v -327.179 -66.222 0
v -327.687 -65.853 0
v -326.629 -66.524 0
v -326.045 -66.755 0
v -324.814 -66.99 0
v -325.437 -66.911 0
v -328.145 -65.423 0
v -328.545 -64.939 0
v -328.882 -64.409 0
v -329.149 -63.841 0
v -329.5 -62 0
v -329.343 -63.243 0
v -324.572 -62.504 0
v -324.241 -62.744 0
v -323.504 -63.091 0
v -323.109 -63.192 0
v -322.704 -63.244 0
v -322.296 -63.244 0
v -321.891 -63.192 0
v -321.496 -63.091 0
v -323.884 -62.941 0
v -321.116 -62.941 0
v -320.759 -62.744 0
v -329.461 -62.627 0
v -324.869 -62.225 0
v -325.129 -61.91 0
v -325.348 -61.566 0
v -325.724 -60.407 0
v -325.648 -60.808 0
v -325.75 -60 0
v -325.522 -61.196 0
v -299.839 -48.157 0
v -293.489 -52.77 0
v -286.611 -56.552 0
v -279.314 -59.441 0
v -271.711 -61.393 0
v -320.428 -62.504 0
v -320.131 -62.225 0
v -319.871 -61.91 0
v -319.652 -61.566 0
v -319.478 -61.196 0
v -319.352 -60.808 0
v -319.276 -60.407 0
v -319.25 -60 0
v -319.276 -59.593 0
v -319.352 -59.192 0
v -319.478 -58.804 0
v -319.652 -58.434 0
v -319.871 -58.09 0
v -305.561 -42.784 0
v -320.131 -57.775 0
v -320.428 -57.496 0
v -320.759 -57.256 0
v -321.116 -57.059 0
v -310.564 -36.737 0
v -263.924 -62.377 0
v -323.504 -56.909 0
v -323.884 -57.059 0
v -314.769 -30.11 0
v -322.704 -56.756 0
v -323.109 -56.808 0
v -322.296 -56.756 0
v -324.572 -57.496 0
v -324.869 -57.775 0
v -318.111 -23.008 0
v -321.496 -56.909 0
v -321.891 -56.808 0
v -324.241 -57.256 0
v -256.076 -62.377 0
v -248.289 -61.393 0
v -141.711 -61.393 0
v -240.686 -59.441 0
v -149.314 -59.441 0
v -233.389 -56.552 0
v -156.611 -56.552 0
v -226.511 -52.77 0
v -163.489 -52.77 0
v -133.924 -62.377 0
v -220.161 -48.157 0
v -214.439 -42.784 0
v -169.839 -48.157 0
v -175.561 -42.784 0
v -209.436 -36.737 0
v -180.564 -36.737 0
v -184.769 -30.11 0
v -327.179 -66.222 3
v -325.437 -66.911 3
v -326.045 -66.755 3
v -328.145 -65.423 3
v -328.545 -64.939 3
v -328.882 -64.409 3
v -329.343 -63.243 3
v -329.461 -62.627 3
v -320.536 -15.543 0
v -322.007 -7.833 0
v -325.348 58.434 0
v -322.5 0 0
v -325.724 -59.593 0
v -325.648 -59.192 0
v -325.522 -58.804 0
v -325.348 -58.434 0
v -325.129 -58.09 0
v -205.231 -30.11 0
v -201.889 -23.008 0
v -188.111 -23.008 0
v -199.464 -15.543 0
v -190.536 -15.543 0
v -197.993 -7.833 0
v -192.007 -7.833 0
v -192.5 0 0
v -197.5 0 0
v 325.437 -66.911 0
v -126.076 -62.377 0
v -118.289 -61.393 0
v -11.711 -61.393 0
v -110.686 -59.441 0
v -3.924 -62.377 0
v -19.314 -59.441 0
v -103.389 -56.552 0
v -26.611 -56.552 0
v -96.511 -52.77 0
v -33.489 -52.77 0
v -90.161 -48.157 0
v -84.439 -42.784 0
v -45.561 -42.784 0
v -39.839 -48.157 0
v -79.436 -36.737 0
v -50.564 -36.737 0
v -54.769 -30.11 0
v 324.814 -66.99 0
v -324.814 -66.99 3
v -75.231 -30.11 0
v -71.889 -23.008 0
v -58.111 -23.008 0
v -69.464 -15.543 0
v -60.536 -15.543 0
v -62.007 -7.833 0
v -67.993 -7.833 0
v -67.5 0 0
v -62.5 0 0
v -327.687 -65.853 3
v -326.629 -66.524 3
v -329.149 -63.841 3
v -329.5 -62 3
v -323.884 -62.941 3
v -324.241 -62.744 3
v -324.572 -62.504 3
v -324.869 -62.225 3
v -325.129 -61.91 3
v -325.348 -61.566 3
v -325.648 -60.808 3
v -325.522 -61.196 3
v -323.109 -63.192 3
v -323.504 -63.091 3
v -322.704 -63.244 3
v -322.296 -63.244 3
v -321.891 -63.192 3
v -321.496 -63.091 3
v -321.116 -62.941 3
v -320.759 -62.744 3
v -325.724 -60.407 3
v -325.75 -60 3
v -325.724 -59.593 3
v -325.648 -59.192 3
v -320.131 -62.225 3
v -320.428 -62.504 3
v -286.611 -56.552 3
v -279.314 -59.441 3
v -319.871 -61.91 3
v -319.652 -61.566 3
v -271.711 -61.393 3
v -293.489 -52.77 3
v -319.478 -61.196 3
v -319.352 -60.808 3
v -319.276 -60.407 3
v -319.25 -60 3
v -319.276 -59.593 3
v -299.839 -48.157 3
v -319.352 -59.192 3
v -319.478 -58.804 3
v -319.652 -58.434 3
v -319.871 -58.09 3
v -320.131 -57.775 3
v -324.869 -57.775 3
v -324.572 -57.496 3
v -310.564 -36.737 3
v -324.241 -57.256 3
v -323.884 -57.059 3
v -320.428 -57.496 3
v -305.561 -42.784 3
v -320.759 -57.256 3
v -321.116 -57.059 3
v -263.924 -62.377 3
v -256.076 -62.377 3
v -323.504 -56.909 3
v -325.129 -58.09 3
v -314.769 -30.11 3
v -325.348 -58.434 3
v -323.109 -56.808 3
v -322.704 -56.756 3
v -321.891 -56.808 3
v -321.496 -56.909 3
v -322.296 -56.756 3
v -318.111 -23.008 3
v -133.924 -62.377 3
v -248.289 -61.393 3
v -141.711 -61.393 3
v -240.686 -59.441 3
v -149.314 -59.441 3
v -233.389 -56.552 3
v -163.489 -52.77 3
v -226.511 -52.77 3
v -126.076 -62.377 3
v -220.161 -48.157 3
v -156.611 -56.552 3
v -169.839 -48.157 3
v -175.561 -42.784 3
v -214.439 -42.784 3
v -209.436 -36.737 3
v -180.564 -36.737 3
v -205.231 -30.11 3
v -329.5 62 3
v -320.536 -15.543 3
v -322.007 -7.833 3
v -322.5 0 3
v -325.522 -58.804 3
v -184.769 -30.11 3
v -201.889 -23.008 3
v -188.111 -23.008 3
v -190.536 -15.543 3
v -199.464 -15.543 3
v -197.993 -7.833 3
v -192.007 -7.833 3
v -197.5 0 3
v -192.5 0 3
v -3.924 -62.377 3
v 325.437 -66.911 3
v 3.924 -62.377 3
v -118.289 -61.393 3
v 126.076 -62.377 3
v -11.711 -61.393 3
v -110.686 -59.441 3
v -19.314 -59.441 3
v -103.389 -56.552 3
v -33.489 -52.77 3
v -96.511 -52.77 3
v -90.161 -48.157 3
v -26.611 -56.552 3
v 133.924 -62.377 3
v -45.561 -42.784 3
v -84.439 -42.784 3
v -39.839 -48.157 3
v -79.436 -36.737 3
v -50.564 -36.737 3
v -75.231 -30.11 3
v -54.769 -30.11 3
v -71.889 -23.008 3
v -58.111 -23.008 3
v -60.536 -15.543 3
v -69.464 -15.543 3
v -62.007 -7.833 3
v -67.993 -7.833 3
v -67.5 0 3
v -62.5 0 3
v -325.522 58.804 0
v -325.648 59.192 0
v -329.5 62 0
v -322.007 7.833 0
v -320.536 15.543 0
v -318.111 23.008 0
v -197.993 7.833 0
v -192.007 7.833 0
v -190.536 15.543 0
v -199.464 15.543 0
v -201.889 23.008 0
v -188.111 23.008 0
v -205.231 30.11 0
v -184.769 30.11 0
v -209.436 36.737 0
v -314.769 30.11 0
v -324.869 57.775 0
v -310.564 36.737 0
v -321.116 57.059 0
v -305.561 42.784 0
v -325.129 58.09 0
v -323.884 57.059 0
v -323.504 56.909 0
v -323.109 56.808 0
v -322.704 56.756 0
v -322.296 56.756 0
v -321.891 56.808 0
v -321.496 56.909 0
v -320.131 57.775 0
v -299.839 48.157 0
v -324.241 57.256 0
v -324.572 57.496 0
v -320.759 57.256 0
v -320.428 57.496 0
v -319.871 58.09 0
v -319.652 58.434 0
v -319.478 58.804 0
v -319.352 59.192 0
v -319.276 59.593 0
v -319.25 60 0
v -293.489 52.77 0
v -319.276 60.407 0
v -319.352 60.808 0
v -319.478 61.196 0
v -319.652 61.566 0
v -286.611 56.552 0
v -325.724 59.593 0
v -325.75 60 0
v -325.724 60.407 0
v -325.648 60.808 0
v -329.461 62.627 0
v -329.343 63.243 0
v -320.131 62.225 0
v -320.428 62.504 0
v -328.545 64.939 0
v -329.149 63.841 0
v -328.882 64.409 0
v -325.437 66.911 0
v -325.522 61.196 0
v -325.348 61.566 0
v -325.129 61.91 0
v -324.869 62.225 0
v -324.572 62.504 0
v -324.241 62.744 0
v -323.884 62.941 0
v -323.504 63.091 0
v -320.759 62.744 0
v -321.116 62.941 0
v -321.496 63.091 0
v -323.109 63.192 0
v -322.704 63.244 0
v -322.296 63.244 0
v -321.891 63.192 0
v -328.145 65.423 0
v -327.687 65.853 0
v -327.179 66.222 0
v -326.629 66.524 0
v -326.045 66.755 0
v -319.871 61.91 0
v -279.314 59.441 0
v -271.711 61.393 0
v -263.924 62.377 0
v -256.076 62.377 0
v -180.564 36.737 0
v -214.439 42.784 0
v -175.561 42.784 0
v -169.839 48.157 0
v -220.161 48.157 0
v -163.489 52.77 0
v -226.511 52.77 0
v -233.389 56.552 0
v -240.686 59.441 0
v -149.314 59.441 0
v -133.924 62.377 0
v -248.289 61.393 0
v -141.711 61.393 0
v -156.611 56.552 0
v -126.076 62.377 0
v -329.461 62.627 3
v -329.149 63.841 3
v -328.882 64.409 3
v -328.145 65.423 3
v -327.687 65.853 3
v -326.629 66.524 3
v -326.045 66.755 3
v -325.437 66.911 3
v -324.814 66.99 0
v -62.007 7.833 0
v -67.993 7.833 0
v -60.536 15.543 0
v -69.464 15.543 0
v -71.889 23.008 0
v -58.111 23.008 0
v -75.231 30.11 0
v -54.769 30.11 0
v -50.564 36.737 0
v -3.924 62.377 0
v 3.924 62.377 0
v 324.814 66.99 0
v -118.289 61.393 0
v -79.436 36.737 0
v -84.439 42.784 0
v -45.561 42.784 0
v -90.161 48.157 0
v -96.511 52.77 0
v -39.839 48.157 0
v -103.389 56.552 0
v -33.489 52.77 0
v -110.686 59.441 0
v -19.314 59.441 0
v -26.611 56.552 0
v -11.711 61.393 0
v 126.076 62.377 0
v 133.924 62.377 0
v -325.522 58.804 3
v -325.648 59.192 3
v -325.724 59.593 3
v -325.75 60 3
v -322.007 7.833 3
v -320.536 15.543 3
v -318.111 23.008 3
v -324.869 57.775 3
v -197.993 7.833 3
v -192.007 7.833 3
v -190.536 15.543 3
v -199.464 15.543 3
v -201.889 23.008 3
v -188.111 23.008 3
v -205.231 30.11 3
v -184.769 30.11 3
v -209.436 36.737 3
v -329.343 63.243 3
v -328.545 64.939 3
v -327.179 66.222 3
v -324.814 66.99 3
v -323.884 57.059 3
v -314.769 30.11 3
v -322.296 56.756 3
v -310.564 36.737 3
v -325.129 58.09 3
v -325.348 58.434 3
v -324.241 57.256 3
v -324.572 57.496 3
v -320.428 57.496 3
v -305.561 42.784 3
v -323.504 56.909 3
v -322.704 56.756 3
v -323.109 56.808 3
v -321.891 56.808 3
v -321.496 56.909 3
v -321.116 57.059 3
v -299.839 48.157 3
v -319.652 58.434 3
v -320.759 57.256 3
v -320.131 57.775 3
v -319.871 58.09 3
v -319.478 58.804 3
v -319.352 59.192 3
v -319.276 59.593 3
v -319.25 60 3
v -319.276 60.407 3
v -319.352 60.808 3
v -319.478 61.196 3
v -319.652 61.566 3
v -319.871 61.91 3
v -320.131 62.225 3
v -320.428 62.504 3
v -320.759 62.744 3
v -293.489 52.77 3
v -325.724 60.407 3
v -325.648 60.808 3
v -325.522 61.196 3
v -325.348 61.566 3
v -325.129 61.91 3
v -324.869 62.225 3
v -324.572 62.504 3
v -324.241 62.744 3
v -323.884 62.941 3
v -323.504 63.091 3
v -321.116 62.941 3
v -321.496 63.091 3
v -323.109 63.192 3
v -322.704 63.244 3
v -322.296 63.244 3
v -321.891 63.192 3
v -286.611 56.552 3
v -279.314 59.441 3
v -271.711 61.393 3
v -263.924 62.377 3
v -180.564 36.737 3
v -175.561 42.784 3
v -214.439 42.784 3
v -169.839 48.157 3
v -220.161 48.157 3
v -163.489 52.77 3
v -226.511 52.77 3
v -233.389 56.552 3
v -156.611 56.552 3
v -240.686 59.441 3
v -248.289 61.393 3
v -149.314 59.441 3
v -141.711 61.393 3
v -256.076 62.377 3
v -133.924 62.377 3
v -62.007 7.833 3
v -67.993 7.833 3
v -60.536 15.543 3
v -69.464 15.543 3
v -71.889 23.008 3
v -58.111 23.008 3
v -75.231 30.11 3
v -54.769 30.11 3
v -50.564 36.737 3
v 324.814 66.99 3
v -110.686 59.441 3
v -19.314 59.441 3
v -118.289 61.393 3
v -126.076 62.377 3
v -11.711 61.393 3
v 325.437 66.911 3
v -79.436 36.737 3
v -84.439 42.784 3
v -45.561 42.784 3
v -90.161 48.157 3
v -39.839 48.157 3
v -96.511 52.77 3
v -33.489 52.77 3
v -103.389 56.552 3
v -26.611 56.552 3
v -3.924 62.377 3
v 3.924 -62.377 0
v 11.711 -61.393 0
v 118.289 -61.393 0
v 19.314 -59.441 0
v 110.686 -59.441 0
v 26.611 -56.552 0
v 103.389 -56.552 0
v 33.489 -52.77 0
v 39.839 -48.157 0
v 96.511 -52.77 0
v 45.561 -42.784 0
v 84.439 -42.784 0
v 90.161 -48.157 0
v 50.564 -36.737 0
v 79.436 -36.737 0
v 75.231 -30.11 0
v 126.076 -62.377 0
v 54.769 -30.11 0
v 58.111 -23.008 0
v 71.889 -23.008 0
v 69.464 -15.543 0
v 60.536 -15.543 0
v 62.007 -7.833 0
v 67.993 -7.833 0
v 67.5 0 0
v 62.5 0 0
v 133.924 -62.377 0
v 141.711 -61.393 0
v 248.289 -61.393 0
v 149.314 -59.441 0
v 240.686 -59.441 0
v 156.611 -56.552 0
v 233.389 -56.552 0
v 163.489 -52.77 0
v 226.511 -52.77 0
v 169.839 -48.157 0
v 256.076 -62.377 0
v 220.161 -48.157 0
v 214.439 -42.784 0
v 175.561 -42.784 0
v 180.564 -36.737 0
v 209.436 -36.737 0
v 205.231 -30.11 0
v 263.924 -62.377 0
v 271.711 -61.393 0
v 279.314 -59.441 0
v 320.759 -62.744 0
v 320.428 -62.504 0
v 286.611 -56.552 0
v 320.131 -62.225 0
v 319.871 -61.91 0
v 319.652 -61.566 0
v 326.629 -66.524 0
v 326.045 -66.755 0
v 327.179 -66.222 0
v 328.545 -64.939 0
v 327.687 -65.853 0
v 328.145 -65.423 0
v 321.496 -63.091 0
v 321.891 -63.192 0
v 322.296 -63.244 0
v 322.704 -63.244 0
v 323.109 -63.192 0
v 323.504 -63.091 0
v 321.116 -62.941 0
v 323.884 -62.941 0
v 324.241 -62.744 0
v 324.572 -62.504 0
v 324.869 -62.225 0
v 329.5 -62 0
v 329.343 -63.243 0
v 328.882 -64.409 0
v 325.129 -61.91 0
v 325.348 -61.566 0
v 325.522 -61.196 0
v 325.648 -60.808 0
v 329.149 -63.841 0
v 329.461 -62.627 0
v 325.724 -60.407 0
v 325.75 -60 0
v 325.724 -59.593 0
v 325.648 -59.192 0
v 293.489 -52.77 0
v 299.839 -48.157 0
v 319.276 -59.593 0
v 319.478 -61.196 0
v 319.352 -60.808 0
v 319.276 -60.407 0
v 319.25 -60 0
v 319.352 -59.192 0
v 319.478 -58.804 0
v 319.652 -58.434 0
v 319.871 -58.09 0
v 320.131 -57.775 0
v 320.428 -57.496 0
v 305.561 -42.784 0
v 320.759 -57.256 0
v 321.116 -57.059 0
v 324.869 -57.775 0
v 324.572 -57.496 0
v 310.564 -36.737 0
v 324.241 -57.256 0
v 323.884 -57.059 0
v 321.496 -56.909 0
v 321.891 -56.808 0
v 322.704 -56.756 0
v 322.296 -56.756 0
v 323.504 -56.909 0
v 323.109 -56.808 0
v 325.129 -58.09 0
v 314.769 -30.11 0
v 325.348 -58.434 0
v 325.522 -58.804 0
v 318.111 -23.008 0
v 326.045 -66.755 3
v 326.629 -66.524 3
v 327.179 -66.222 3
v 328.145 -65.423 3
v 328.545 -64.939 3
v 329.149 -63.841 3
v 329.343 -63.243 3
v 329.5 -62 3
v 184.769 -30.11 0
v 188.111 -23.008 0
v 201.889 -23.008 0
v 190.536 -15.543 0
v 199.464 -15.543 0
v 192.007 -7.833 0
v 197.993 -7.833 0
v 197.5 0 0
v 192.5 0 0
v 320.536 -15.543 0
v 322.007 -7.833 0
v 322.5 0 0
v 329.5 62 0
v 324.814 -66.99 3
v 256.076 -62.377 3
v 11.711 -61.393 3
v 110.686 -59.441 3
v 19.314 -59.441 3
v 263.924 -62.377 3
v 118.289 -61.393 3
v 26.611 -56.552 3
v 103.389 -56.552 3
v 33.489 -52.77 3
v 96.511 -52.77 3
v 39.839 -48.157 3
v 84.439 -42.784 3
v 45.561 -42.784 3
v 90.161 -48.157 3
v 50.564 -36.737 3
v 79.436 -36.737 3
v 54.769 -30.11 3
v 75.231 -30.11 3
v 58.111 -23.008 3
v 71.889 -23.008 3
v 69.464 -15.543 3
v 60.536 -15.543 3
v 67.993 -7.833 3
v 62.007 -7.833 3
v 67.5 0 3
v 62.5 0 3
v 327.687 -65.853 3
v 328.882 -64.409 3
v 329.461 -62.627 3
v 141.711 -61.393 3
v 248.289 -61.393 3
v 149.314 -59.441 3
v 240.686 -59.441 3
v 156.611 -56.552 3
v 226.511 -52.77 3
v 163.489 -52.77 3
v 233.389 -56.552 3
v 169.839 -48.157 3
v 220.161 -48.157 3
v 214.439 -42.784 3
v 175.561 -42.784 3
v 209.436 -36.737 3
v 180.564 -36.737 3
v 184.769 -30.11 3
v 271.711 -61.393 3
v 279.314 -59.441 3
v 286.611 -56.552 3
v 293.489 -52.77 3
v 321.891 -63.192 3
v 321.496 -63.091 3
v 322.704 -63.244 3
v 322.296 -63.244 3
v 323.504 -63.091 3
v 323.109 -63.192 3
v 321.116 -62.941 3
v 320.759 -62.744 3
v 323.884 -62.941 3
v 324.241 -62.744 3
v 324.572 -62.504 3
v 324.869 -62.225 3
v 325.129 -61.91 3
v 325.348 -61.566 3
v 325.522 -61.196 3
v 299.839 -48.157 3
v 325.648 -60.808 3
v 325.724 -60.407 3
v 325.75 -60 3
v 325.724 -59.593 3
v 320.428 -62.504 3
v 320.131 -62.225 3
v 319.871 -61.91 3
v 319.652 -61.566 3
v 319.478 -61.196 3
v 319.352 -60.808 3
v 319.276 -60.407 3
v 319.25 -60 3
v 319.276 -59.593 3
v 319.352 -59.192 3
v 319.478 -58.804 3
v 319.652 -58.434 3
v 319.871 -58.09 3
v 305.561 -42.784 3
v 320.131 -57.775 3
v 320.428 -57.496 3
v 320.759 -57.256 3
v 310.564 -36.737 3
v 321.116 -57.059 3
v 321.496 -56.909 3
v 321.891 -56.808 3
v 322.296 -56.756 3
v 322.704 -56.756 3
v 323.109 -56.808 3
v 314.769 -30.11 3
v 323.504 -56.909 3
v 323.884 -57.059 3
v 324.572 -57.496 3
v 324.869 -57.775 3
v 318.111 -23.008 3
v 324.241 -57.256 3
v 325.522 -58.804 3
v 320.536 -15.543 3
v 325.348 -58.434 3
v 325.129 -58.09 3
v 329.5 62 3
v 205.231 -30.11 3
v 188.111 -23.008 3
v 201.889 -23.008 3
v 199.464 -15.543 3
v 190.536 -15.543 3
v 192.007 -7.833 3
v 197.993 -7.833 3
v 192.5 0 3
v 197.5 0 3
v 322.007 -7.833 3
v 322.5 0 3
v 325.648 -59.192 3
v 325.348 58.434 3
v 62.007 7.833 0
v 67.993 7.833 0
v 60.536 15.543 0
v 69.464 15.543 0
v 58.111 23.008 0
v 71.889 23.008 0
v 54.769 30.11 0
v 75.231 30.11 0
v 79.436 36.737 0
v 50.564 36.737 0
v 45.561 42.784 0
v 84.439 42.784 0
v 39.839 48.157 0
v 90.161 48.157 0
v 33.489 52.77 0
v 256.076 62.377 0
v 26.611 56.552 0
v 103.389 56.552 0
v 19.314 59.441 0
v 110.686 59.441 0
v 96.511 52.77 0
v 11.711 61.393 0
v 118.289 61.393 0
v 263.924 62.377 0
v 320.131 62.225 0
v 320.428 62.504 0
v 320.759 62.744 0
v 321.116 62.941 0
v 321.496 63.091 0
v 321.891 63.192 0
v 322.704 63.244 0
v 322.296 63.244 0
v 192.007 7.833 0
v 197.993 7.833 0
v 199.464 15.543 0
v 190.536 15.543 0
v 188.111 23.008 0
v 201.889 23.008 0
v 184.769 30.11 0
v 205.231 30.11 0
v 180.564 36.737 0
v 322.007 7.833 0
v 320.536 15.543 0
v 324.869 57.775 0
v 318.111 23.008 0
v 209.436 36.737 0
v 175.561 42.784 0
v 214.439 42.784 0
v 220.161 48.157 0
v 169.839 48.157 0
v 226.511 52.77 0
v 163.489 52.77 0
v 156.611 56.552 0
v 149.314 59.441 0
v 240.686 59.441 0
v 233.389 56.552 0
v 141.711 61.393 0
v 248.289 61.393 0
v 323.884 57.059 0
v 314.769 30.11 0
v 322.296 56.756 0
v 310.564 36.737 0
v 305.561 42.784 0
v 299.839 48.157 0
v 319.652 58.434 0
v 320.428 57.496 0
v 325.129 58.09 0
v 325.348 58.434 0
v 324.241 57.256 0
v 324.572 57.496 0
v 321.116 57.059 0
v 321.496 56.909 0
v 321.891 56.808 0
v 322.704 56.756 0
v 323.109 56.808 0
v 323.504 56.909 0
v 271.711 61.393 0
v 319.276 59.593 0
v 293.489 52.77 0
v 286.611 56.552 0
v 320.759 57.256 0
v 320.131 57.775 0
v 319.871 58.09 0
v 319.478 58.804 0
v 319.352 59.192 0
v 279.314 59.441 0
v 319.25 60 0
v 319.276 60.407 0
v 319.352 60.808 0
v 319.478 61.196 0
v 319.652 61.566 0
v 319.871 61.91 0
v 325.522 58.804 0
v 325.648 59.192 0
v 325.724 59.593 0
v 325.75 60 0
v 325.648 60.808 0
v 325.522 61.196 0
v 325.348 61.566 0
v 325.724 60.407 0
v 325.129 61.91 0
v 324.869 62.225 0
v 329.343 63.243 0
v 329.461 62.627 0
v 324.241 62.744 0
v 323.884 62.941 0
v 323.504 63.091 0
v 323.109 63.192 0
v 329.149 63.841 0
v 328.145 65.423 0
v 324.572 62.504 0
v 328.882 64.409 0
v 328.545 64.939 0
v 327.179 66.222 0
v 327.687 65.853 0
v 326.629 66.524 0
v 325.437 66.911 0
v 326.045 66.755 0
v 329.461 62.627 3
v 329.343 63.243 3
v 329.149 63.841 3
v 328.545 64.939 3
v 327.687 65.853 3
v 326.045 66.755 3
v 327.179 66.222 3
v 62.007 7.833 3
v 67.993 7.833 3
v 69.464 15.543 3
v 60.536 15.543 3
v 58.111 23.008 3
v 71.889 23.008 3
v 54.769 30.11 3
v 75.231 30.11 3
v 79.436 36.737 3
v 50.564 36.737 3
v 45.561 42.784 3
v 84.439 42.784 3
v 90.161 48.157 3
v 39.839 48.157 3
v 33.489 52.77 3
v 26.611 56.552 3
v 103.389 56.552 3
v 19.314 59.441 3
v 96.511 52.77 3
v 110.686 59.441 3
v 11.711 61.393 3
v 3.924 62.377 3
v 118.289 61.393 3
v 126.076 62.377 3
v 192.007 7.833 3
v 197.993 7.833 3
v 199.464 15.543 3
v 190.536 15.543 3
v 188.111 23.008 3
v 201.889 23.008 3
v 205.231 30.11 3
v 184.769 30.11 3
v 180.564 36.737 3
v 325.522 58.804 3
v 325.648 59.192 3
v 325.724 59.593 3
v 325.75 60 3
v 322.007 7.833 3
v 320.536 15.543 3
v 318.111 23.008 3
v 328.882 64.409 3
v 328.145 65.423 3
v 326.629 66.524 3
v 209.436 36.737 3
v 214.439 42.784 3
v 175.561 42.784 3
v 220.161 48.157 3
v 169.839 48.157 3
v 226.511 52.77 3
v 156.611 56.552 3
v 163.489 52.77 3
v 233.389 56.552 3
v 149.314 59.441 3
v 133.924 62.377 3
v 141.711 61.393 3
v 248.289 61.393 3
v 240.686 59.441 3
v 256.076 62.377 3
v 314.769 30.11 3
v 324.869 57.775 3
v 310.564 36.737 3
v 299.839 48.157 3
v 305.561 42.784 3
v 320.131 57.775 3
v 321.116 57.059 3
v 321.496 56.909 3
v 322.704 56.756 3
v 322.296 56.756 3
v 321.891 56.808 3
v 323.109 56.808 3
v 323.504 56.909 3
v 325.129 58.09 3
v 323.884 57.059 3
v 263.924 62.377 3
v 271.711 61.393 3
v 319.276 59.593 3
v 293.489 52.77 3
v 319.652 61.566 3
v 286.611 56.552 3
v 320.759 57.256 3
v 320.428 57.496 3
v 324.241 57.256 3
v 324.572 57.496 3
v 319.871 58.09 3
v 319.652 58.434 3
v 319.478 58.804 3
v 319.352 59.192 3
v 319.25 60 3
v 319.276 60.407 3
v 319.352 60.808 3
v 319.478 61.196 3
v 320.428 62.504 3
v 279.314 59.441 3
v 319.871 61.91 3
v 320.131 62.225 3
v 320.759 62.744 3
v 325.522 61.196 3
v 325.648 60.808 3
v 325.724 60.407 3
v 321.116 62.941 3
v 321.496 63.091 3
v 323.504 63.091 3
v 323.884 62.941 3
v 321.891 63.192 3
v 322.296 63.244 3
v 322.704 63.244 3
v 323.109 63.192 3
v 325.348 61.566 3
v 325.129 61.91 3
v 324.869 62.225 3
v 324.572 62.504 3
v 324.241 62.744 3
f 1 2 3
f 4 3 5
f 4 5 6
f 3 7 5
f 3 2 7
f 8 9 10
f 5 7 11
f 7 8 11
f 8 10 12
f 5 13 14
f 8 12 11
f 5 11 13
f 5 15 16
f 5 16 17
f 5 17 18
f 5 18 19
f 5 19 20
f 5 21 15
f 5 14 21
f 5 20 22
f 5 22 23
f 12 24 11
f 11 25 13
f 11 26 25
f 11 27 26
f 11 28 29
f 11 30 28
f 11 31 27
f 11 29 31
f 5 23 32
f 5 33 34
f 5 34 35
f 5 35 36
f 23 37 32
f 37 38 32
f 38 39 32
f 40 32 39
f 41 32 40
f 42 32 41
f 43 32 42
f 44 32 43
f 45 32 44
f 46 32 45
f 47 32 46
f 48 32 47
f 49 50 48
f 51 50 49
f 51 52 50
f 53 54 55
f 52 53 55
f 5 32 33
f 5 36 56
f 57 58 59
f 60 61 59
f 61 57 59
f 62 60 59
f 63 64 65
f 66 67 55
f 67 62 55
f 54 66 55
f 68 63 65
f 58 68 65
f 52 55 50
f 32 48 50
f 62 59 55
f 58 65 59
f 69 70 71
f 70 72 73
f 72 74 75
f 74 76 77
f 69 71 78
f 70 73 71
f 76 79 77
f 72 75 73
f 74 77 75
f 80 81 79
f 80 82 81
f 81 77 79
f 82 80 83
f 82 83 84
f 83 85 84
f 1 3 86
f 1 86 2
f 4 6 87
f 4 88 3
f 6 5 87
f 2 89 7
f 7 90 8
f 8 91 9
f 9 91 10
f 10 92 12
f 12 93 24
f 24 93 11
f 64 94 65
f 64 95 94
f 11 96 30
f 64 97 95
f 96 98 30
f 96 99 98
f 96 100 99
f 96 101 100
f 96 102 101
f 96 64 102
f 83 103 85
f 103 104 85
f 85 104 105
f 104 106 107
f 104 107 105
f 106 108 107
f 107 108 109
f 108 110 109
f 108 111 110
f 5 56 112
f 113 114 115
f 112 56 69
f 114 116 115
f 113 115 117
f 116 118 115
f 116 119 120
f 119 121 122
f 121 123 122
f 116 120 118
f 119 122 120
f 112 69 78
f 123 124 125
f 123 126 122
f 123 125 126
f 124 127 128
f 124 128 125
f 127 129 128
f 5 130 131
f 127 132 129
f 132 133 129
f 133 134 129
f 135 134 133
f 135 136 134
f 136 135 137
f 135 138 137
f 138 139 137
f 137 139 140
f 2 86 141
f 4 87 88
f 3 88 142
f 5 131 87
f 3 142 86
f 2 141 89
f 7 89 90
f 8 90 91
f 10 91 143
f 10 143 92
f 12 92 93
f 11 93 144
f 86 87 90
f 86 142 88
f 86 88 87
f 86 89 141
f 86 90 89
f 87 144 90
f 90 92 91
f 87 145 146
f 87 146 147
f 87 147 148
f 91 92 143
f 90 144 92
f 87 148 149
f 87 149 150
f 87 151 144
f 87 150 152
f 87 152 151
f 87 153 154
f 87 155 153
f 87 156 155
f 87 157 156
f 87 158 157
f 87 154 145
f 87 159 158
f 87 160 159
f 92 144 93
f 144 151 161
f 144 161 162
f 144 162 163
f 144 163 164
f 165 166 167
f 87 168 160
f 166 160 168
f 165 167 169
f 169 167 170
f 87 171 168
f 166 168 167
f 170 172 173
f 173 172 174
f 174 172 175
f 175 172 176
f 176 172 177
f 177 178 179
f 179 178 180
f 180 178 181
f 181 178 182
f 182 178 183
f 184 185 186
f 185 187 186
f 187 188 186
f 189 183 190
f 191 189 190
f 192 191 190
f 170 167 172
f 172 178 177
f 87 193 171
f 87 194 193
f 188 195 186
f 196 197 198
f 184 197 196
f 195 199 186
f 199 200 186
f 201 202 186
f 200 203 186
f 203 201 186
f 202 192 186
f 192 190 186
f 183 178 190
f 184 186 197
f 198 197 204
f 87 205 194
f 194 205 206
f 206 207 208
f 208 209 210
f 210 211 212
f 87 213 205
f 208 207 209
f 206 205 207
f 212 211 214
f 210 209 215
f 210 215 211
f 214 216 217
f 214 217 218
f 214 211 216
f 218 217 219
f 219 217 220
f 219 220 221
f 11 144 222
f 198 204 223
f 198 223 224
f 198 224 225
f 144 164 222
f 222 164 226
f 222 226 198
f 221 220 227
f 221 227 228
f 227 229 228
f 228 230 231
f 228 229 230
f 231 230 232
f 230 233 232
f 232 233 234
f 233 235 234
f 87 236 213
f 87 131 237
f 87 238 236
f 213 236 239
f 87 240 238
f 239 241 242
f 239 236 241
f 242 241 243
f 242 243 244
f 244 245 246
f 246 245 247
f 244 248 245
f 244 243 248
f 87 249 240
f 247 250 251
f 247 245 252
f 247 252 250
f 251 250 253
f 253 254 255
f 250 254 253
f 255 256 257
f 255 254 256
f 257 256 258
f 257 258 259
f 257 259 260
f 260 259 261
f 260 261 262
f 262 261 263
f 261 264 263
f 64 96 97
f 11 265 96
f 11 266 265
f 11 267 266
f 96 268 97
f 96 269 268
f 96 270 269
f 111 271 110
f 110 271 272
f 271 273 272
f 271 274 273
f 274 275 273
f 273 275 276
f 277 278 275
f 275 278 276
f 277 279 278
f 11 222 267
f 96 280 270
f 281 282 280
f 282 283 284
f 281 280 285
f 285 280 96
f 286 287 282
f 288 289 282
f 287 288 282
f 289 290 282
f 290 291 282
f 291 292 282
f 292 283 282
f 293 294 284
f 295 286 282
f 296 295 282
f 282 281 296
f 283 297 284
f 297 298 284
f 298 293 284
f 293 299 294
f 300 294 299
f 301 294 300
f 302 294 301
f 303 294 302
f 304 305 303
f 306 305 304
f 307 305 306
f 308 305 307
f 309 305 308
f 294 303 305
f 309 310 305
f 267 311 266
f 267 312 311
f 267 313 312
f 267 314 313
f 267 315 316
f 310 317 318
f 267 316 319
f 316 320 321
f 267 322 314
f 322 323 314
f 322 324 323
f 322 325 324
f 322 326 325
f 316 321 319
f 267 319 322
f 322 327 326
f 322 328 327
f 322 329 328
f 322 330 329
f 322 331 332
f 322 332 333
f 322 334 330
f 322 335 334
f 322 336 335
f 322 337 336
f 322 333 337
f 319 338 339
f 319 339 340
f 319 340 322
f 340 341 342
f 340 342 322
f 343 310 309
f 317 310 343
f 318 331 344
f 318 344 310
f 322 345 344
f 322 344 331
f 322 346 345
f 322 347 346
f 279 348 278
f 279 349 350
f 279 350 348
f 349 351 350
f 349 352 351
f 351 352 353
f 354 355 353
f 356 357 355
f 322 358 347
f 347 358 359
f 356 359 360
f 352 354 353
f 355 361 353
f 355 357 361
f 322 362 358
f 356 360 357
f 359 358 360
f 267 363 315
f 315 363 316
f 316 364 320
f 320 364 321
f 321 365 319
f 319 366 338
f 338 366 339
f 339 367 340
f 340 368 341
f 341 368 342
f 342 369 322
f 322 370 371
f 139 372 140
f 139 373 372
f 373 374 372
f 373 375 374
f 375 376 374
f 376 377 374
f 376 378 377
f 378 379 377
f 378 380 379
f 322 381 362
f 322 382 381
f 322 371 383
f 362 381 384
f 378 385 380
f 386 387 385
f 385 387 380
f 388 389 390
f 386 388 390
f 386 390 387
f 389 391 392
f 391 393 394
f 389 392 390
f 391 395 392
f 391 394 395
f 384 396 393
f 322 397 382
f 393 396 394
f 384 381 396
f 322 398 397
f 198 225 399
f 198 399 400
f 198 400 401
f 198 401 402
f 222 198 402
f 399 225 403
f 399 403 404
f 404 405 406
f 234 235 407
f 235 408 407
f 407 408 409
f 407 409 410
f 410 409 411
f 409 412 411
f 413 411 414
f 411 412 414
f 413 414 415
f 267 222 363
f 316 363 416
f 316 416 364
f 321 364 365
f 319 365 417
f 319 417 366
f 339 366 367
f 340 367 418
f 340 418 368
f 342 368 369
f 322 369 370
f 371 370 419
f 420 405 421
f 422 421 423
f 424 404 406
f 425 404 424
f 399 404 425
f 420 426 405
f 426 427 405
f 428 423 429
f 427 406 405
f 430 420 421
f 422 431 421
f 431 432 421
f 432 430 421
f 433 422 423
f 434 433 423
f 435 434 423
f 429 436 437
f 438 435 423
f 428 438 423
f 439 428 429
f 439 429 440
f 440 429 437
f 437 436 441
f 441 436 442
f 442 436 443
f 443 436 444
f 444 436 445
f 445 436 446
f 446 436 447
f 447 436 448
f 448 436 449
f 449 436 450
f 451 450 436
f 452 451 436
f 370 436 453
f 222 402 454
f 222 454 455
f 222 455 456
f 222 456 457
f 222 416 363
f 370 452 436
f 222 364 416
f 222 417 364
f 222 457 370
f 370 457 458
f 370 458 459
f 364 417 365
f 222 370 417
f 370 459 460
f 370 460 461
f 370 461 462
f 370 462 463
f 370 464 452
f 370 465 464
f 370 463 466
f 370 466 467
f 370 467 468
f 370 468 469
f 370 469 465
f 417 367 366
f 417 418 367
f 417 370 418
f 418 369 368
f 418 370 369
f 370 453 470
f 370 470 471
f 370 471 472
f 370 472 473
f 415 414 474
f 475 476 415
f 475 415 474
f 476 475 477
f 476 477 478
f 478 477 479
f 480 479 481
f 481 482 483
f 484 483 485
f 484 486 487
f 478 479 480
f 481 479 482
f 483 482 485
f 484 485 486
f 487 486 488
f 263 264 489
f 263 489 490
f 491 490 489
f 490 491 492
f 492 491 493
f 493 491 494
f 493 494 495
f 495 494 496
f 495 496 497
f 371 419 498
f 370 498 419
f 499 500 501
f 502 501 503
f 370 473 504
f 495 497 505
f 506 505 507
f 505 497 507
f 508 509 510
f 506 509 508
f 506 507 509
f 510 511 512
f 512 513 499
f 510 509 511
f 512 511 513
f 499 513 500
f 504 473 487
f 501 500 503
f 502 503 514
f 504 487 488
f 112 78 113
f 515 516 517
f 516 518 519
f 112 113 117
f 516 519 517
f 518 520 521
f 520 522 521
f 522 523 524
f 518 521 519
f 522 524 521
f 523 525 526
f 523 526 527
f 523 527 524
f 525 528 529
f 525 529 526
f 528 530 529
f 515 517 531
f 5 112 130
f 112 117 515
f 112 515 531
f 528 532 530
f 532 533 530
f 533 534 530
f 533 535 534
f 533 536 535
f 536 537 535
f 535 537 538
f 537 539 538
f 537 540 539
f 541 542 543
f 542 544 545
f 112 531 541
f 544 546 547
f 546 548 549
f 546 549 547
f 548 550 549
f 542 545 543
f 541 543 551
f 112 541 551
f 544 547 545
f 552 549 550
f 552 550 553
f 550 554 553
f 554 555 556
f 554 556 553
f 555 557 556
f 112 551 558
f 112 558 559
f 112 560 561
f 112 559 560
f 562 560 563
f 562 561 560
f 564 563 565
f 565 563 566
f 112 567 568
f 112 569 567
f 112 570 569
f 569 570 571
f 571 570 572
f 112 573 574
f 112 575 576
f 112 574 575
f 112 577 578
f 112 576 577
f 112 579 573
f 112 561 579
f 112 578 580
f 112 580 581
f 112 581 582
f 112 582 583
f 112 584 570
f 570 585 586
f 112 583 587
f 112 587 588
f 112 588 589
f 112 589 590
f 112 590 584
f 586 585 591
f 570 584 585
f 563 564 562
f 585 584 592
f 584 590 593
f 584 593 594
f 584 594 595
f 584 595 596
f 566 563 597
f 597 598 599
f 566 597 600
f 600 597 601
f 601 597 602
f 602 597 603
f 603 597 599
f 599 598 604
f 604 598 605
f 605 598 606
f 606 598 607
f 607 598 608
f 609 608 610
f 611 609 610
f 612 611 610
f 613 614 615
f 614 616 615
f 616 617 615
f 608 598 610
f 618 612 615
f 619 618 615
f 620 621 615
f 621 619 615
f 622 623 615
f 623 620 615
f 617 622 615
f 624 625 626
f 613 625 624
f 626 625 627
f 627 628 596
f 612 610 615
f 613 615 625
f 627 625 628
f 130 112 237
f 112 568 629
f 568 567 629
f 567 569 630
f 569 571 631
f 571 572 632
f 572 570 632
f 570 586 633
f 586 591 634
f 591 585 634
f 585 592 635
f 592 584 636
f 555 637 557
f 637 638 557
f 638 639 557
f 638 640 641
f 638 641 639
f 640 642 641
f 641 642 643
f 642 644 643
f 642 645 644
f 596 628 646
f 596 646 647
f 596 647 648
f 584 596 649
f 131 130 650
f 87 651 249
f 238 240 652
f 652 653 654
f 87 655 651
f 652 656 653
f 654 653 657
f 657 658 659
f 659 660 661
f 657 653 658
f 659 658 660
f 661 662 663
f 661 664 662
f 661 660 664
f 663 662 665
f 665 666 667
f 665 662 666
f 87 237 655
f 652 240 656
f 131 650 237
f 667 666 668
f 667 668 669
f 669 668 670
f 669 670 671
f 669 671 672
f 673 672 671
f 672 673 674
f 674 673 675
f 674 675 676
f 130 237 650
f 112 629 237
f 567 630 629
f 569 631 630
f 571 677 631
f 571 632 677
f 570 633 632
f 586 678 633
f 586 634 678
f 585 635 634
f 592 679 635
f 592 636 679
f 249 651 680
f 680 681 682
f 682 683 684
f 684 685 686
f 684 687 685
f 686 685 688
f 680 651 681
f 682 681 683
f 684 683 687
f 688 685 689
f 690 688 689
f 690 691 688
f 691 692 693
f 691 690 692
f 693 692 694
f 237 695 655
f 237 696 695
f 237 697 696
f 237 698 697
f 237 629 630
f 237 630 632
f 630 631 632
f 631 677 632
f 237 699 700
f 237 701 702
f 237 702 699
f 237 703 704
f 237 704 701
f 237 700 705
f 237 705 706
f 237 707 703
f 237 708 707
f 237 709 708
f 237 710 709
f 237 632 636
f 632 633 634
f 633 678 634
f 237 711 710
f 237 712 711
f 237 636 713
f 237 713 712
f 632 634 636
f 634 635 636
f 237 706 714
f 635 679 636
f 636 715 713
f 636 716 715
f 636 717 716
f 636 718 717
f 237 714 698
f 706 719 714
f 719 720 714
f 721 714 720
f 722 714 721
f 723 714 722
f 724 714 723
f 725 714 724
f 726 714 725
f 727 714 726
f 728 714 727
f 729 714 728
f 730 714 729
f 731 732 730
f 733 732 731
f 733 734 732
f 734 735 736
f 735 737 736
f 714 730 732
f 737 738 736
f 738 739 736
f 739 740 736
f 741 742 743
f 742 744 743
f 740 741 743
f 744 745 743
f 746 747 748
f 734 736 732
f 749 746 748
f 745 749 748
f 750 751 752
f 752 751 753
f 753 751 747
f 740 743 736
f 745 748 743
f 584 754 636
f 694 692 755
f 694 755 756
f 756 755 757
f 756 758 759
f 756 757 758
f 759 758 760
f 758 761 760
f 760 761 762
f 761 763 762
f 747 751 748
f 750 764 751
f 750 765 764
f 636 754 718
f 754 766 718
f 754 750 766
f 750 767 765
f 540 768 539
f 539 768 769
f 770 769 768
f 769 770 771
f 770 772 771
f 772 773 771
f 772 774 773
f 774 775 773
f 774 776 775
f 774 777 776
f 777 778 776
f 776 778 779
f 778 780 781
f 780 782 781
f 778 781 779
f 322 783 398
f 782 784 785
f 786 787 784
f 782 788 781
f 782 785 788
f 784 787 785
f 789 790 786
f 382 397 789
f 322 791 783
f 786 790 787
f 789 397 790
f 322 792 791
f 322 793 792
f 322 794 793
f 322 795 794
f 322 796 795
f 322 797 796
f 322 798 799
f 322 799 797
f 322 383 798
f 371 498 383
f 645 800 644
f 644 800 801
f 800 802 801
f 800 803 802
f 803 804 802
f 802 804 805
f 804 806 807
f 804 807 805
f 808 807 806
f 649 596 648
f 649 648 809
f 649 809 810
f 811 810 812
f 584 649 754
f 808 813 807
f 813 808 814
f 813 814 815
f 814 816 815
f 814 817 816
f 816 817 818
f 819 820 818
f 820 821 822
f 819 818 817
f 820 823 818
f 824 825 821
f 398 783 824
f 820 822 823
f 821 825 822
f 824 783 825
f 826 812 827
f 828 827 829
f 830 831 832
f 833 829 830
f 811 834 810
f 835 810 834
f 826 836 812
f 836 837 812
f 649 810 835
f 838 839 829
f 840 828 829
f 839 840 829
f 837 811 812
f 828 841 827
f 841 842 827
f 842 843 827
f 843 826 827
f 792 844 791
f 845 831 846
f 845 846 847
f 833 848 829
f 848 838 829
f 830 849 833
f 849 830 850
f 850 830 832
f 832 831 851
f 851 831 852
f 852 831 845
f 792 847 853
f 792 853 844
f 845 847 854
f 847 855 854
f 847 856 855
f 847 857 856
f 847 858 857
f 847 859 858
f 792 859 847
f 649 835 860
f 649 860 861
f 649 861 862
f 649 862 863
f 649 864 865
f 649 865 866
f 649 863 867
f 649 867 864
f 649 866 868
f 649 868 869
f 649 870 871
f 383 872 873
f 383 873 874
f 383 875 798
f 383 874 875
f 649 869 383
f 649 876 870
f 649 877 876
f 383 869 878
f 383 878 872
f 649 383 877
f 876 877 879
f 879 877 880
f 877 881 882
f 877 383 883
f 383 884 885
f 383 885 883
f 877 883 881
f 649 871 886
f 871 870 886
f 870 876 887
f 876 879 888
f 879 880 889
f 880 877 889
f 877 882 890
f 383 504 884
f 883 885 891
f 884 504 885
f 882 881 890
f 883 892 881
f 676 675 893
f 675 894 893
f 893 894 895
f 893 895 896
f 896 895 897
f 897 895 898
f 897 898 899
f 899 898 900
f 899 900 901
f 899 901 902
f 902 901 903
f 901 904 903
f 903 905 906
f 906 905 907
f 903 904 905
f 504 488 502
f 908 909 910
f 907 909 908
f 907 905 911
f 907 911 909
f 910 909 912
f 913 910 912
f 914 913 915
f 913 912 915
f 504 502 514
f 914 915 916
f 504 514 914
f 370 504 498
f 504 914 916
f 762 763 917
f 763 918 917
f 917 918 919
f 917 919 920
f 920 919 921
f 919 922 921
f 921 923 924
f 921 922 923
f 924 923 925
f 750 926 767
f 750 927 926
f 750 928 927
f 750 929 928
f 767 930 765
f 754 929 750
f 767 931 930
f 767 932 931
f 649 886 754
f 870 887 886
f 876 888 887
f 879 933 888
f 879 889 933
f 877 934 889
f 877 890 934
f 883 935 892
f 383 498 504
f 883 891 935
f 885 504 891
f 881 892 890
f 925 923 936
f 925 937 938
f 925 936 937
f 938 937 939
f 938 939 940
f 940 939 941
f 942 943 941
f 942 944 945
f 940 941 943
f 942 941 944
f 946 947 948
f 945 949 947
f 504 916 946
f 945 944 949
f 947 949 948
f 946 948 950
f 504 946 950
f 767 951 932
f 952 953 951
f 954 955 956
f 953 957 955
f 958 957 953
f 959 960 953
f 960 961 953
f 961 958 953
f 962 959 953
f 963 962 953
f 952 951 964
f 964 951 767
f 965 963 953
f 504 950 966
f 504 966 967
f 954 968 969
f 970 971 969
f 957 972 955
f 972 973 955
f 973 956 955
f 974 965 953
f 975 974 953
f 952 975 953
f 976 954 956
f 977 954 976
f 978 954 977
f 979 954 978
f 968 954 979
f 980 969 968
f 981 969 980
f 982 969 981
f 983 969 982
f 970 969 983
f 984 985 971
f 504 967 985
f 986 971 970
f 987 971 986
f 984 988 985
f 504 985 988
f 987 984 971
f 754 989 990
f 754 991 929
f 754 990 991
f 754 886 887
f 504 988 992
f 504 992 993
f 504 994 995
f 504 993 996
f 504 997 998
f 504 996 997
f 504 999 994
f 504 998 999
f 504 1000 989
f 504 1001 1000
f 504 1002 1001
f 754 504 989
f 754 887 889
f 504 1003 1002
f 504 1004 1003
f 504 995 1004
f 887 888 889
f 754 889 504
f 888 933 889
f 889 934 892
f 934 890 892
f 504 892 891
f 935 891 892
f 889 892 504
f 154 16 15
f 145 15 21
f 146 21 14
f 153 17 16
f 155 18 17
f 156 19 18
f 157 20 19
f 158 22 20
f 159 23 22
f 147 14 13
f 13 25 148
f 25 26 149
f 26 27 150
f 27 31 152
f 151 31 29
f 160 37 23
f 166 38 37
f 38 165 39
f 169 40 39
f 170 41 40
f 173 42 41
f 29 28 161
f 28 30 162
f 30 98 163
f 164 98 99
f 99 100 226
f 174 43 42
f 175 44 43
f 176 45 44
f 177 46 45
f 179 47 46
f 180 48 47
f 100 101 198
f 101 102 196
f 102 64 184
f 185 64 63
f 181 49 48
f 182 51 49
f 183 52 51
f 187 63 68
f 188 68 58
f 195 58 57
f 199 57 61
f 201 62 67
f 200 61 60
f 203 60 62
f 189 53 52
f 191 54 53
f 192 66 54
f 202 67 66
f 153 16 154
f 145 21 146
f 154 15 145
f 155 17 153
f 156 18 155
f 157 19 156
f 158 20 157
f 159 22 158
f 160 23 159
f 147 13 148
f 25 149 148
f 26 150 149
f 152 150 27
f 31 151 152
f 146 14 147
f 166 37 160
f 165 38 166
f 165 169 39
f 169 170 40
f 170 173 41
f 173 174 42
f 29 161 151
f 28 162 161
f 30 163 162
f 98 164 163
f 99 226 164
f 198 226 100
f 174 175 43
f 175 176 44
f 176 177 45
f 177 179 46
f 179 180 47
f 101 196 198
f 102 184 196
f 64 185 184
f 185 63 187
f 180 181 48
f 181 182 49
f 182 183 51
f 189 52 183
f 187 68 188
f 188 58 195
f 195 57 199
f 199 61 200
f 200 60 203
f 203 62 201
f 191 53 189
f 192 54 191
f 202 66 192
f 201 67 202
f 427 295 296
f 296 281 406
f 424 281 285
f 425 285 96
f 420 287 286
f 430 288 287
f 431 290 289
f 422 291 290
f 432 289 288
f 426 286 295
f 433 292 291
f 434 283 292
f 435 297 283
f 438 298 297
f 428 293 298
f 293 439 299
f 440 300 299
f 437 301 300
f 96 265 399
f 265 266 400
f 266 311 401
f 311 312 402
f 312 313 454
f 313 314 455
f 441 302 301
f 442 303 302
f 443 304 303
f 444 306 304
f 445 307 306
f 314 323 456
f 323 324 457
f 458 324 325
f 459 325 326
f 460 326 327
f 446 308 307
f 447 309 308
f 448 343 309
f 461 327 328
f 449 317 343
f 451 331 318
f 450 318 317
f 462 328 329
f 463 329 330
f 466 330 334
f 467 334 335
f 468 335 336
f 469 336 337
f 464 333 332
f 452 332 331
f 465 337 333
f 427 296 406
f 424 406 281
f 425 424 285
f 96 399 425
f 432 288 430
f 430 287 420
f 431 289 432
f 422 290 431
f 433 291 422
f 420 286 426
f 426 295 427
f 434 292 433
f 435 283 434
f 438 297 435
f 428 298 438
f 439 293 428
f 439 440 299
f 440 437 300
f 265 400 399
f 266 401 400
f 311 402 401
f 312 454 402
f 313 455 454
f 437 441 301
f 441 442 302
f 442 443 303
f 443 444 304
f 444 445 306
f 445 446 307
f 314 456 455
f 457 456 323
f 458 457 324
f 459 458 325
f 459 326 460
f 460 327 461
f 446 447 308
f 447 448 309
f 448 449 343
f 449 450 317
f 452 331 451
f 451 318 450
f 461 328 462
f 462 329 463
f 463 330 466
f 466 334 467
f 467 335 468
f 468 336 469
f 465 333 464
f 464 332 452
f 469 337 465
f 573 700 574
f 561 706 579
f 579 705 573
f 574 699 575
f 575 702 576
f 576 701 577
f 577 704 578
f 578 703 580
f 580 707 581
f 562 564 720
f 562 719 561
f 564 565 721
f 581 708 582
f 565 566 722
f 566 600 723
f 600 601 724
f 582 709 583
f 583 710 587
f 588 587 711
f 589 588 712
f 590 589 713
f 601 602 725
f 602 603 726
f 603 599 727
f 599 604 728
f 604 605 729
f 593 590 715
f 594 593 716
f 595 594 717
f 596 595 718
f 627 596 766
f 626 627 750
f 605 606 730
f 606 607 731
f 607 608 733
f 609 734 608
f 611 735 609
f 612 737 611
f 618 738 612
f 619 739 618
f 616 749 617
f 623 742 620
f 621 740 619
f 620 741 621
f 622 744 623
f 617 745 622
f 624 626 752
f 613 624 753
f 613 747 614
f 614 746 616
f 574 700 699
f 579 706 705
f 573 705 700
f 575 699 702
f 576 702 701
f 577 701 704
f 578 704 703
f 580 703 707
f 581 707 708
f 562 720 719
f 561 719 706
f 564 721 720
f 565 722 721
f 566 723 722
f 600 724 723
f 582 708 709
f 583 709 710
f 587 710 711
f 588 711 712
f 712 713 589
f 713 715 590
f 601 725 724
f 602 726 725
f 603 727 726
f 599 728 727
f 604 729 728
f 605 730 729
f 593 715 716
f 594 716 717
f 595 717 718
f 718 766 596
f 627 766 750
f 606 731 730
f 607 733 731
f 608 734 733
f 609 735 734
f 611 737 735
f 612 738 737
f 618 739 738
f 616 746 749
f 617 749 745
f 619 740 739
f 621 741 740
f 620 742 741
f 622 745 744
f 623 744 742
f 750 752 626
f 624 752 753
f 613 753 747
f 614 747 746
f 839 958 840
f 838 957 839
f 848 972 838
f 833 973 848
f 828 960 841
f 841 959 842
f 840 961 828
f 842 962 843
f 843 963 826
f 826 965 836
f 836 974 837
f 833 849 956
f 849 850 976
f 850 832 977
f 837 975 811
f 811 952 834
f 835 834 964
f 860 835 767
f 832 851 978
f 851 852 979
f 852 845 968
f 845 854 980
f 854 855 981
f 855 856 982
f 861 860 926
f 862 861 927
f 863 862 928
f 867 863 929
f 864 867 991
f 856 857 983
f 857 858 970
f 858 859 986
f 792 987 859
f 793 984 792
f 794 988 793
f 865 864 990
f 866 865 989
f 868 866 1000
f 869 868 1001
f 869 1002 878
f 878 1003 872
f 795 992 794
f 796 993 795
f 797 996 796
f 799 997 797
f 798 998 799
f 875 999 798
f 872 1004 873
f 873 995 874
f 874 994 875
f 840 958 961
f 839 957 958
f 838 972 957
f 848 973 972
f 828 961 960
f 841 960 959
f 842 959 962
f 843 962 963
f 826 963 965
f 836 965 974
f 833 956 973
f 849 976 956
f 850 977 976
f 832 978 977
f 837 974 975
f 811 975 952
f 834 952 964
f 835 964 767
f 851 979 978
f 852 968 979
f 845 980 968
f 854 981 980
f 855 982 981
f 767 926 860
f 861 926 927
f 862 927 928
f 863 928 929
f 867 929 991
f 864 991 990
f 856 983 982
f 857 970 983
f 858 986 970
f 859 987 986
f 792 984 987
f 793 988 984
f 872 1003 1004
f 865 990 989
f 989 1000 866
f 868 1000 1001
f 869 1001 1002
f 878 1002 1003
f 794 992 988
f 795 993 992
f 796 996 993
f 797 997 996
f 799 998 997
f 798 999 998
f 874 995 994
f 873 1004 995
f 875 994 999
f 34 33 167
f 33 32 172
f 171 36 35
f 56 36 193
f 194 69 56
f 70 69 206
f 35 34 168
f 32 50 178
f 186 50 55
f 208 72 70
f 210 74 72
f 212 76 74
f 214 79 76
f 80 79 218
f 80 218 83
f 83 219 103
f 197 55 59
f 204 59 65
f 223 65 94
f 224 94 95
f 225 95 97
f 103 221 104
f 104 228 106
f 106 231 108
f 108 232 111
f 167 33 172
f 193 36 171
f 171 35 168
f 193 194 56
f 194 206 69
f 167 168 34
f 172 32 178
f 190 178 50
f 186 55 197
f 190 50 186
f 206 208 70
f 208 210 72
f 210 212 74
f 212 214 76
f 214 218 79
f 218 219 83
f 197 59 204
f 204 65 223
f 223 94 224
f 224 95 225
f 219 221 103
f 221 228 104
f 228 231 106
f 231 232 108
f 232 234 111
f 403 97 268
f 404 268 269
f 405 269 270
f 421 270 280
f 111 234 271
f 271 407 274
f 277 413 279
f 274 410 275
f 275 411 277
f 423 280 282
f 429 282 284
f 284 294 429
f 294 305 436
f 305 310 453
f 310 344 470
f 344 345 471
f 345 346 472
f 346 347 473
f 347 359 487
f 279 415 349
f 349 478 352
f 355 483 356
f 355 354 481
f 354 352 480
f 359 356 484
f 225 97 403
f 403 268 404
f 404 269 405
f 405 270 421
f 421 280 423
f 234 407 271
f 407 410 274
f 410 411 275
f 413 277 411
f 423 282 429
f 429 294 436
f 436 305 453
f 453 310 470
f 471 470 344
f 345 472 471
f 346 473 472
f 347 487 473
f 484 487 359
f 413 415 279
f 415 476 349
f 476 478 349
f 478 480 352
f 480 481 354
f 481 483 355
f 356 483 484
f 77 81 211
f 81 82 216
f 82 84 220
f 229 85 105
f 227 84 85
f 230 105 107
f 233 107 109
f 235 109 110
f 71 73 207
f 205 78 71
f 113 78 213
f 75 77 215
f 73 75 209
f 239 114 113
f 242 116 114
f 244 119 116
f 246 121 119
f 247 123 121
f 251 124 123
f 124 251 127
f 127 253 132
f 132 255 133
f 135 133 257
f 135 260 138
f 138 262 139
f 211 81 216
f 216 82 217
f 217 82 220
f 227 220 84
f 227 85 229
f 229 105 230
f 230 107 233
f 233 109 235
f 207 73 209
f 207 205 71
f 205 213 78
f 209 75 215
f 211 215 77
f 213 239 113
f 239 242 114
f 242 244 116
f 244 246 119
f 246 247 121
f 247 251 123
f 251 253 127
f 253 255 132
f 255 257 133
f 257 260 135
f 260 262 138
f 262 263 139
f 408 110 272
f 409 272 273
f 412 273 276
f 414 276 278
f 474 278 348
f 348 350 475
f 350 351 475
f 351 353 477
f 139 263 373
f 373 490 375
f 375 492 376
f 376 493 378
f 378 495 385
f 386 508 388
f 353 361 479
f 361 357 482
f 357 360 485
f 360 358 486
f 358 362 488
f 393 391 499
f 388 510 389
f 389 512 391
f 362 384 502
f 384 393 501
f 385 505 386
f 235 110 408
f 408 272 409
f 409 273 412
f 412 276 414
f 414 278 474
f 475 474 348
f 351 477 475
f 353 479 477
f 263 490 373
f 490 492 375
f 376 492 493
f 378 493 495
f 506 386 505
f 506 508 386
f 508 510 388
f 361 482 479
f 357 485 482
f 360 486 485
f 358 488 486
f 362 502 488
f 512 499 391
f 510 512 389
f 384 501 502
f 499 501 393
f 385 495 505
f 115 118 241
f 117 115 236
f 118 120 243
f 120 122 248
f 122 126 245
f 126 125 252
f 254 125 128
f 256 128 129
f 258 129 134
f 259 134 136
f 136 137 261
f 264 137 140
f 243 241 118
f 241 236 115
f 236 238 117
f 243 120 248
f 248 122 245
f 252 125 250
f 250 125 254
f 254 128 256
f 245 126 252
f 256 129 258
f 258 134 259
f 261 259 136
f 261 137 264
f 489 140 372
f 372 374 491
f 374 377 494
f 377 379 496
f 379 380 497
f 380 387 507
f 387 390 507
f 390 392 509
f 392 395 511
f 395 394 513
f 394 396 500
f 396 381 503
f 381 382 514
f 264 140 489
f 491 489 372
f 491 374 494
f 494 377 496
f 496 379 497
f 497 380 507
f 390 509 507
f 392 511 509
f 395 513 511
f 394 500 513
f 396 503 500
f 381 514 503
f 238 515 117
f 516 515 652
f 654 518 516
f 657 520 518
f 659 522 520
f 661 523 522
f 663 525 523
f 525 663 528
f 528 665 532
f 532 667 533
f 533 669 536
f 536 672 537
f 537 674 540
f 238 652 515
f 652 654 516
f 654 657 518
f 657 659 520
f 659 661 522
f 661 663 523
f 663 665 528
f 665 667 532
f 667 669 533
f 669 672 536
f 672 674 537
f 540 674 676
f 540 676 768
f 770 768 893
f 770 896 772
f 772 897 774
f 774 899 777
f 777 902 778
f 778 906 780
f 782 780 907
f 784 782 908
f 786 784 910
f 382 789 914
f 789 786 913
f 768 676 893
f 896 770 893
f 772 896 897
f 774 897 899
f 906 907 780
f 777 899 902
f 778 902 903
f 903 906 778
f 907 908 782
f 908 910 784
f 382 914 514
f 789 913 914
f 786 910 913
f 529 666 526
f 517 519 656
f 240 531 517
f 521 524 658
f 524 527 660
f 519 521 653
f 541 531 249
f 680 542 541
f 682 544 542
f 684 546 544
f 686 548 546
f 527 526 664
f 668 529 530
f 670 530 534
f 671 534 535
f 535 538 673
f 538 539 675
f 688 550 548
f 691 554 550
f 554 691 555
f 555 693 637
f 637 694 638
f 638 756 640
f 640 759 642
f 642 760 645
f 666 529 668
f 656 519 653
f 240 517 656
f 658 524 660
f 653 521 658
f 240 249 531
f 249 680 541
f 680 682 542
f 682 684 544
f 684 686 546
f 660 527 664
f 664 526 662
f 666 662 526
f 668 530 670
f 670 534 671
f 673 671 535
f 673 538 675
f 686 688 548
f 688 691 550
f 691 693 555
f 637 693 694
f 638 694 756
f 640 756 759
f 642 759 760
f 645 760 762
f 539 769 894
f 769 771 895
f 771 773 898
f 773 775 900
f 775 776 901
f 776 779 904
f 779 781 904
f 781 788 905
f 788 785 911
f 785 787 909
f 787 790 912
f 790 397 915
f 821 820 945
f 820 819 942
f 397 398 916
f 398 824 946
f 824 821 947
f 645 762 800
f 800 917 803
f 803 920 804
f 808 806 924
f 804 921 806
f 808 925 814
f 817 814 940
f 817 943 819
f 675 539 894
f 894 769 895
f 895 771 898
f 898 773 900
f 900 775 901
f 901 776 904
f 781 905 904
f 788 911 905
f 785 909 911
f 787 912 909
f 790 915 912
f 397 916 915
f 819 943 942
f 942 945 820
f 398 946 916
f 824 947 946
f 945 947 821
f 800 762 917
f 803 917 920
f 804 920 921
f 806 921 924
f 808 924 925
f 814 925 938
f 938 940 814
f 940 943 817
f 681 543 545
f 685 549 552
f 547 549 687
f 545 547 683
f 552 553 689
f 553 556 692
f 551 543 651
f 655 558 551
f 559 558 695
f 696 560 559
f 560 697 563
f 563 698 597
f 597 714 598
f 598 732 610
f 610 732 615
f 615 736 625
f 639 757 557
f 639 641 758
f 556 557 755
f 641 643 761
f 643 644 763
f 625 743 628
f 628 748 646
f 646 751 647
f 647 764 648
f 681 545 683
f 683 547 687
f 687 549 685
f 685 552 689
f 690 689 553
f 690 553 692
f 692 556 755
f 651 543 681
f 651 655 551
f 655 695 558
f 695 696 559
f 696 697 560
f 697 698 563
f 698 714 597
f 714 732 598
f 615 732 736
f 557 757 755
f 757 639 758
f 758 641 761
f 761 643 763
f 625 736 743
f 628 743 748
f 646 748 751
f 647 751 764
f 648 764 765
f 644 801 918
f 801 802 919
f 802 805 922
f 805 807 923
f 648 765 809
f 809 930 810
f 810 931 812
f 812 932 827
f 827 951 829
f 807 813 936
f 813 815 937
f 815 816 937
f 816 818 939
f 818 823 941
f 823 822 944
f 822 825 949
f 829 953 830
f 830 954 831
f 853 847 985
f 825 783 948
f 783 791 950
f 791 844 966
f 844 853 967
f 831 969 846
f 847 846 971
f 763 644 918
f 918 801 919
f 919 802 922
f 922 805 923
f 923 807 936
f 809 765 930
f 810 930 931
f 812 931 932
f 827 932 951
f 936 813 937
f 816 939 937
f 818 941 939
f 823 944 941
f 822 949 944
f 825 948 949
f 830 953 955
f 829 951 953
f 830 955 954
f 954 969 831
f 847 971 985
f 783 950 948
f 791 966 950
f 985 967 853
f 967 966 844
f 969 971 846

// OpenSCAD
$fn = 50;

difference() {
	union() {
		hull() {
			translate(v = [-324.5, 62.0, 0]) {
				cylinder(h = 3, r = 5);
			}
			translate(v = [324.5, 62.0, 0]) {
				cylinder(h = 3, r = 5);
			}
			translate(v = [-324.5, -62.0, 0]) {
				cylinder(h = 3, r = 5);
			}
			translate(v = [324.5, -62.0, 0]) {
				cylinder(h = 3, r = 5);
			}
		}
	}
	union() {
		translate(v = [-322.5, -60.0, -100.0]) {
			cylinder(h = 200, r = 3.25);
		}
		translate(v = [-322.5, 60.0, -100.0]) {
			cylinder(h = 200, r = 3.25);
		}
		translate(v = [322.5, -60.0, -100.0]) {
			cylinder(h = 200, r = 3.25);
		}
		translate(v = [322.5, 60.0, -100.0]) {
			cylinder(h = 200, r = 3.25);
		}
		translate(v = [-322.5, -60.0, -100.0]) {
			cylinder(h = 200, r = 1.8);
		}
		translate(v = [-322.5, 60.0, -100.0]) {
			cylinder(h = 200, r = 1.8);
		}
		translate(v = [322.5, -60.0, -100.0]) {
			cylinder(h = 200, r = 1.8);
		}
		translate(v = [322.5, 60.0, -100.0]) {
			cylinder(h = 200, r = 1.8);
		}
		translate(v = [-260.0, 0, 0.0]) {
			cylinder(h = 3, r = 62.5);
		}
		translate(v = [-130.0, 0, 0.0]) {
			cylinder(h = 3, r = 62.5);
		}
		cylinder(h = 3, r = 62.5);
		translate(v = [130.0, 0, 0.0]) {
			cylinder(h = 3, r = 62.5);
		}
		translate(v = [260.0, 0, 0.0]) {
			cylinder(h = 3, r = 62.5);
		}
	}
}
